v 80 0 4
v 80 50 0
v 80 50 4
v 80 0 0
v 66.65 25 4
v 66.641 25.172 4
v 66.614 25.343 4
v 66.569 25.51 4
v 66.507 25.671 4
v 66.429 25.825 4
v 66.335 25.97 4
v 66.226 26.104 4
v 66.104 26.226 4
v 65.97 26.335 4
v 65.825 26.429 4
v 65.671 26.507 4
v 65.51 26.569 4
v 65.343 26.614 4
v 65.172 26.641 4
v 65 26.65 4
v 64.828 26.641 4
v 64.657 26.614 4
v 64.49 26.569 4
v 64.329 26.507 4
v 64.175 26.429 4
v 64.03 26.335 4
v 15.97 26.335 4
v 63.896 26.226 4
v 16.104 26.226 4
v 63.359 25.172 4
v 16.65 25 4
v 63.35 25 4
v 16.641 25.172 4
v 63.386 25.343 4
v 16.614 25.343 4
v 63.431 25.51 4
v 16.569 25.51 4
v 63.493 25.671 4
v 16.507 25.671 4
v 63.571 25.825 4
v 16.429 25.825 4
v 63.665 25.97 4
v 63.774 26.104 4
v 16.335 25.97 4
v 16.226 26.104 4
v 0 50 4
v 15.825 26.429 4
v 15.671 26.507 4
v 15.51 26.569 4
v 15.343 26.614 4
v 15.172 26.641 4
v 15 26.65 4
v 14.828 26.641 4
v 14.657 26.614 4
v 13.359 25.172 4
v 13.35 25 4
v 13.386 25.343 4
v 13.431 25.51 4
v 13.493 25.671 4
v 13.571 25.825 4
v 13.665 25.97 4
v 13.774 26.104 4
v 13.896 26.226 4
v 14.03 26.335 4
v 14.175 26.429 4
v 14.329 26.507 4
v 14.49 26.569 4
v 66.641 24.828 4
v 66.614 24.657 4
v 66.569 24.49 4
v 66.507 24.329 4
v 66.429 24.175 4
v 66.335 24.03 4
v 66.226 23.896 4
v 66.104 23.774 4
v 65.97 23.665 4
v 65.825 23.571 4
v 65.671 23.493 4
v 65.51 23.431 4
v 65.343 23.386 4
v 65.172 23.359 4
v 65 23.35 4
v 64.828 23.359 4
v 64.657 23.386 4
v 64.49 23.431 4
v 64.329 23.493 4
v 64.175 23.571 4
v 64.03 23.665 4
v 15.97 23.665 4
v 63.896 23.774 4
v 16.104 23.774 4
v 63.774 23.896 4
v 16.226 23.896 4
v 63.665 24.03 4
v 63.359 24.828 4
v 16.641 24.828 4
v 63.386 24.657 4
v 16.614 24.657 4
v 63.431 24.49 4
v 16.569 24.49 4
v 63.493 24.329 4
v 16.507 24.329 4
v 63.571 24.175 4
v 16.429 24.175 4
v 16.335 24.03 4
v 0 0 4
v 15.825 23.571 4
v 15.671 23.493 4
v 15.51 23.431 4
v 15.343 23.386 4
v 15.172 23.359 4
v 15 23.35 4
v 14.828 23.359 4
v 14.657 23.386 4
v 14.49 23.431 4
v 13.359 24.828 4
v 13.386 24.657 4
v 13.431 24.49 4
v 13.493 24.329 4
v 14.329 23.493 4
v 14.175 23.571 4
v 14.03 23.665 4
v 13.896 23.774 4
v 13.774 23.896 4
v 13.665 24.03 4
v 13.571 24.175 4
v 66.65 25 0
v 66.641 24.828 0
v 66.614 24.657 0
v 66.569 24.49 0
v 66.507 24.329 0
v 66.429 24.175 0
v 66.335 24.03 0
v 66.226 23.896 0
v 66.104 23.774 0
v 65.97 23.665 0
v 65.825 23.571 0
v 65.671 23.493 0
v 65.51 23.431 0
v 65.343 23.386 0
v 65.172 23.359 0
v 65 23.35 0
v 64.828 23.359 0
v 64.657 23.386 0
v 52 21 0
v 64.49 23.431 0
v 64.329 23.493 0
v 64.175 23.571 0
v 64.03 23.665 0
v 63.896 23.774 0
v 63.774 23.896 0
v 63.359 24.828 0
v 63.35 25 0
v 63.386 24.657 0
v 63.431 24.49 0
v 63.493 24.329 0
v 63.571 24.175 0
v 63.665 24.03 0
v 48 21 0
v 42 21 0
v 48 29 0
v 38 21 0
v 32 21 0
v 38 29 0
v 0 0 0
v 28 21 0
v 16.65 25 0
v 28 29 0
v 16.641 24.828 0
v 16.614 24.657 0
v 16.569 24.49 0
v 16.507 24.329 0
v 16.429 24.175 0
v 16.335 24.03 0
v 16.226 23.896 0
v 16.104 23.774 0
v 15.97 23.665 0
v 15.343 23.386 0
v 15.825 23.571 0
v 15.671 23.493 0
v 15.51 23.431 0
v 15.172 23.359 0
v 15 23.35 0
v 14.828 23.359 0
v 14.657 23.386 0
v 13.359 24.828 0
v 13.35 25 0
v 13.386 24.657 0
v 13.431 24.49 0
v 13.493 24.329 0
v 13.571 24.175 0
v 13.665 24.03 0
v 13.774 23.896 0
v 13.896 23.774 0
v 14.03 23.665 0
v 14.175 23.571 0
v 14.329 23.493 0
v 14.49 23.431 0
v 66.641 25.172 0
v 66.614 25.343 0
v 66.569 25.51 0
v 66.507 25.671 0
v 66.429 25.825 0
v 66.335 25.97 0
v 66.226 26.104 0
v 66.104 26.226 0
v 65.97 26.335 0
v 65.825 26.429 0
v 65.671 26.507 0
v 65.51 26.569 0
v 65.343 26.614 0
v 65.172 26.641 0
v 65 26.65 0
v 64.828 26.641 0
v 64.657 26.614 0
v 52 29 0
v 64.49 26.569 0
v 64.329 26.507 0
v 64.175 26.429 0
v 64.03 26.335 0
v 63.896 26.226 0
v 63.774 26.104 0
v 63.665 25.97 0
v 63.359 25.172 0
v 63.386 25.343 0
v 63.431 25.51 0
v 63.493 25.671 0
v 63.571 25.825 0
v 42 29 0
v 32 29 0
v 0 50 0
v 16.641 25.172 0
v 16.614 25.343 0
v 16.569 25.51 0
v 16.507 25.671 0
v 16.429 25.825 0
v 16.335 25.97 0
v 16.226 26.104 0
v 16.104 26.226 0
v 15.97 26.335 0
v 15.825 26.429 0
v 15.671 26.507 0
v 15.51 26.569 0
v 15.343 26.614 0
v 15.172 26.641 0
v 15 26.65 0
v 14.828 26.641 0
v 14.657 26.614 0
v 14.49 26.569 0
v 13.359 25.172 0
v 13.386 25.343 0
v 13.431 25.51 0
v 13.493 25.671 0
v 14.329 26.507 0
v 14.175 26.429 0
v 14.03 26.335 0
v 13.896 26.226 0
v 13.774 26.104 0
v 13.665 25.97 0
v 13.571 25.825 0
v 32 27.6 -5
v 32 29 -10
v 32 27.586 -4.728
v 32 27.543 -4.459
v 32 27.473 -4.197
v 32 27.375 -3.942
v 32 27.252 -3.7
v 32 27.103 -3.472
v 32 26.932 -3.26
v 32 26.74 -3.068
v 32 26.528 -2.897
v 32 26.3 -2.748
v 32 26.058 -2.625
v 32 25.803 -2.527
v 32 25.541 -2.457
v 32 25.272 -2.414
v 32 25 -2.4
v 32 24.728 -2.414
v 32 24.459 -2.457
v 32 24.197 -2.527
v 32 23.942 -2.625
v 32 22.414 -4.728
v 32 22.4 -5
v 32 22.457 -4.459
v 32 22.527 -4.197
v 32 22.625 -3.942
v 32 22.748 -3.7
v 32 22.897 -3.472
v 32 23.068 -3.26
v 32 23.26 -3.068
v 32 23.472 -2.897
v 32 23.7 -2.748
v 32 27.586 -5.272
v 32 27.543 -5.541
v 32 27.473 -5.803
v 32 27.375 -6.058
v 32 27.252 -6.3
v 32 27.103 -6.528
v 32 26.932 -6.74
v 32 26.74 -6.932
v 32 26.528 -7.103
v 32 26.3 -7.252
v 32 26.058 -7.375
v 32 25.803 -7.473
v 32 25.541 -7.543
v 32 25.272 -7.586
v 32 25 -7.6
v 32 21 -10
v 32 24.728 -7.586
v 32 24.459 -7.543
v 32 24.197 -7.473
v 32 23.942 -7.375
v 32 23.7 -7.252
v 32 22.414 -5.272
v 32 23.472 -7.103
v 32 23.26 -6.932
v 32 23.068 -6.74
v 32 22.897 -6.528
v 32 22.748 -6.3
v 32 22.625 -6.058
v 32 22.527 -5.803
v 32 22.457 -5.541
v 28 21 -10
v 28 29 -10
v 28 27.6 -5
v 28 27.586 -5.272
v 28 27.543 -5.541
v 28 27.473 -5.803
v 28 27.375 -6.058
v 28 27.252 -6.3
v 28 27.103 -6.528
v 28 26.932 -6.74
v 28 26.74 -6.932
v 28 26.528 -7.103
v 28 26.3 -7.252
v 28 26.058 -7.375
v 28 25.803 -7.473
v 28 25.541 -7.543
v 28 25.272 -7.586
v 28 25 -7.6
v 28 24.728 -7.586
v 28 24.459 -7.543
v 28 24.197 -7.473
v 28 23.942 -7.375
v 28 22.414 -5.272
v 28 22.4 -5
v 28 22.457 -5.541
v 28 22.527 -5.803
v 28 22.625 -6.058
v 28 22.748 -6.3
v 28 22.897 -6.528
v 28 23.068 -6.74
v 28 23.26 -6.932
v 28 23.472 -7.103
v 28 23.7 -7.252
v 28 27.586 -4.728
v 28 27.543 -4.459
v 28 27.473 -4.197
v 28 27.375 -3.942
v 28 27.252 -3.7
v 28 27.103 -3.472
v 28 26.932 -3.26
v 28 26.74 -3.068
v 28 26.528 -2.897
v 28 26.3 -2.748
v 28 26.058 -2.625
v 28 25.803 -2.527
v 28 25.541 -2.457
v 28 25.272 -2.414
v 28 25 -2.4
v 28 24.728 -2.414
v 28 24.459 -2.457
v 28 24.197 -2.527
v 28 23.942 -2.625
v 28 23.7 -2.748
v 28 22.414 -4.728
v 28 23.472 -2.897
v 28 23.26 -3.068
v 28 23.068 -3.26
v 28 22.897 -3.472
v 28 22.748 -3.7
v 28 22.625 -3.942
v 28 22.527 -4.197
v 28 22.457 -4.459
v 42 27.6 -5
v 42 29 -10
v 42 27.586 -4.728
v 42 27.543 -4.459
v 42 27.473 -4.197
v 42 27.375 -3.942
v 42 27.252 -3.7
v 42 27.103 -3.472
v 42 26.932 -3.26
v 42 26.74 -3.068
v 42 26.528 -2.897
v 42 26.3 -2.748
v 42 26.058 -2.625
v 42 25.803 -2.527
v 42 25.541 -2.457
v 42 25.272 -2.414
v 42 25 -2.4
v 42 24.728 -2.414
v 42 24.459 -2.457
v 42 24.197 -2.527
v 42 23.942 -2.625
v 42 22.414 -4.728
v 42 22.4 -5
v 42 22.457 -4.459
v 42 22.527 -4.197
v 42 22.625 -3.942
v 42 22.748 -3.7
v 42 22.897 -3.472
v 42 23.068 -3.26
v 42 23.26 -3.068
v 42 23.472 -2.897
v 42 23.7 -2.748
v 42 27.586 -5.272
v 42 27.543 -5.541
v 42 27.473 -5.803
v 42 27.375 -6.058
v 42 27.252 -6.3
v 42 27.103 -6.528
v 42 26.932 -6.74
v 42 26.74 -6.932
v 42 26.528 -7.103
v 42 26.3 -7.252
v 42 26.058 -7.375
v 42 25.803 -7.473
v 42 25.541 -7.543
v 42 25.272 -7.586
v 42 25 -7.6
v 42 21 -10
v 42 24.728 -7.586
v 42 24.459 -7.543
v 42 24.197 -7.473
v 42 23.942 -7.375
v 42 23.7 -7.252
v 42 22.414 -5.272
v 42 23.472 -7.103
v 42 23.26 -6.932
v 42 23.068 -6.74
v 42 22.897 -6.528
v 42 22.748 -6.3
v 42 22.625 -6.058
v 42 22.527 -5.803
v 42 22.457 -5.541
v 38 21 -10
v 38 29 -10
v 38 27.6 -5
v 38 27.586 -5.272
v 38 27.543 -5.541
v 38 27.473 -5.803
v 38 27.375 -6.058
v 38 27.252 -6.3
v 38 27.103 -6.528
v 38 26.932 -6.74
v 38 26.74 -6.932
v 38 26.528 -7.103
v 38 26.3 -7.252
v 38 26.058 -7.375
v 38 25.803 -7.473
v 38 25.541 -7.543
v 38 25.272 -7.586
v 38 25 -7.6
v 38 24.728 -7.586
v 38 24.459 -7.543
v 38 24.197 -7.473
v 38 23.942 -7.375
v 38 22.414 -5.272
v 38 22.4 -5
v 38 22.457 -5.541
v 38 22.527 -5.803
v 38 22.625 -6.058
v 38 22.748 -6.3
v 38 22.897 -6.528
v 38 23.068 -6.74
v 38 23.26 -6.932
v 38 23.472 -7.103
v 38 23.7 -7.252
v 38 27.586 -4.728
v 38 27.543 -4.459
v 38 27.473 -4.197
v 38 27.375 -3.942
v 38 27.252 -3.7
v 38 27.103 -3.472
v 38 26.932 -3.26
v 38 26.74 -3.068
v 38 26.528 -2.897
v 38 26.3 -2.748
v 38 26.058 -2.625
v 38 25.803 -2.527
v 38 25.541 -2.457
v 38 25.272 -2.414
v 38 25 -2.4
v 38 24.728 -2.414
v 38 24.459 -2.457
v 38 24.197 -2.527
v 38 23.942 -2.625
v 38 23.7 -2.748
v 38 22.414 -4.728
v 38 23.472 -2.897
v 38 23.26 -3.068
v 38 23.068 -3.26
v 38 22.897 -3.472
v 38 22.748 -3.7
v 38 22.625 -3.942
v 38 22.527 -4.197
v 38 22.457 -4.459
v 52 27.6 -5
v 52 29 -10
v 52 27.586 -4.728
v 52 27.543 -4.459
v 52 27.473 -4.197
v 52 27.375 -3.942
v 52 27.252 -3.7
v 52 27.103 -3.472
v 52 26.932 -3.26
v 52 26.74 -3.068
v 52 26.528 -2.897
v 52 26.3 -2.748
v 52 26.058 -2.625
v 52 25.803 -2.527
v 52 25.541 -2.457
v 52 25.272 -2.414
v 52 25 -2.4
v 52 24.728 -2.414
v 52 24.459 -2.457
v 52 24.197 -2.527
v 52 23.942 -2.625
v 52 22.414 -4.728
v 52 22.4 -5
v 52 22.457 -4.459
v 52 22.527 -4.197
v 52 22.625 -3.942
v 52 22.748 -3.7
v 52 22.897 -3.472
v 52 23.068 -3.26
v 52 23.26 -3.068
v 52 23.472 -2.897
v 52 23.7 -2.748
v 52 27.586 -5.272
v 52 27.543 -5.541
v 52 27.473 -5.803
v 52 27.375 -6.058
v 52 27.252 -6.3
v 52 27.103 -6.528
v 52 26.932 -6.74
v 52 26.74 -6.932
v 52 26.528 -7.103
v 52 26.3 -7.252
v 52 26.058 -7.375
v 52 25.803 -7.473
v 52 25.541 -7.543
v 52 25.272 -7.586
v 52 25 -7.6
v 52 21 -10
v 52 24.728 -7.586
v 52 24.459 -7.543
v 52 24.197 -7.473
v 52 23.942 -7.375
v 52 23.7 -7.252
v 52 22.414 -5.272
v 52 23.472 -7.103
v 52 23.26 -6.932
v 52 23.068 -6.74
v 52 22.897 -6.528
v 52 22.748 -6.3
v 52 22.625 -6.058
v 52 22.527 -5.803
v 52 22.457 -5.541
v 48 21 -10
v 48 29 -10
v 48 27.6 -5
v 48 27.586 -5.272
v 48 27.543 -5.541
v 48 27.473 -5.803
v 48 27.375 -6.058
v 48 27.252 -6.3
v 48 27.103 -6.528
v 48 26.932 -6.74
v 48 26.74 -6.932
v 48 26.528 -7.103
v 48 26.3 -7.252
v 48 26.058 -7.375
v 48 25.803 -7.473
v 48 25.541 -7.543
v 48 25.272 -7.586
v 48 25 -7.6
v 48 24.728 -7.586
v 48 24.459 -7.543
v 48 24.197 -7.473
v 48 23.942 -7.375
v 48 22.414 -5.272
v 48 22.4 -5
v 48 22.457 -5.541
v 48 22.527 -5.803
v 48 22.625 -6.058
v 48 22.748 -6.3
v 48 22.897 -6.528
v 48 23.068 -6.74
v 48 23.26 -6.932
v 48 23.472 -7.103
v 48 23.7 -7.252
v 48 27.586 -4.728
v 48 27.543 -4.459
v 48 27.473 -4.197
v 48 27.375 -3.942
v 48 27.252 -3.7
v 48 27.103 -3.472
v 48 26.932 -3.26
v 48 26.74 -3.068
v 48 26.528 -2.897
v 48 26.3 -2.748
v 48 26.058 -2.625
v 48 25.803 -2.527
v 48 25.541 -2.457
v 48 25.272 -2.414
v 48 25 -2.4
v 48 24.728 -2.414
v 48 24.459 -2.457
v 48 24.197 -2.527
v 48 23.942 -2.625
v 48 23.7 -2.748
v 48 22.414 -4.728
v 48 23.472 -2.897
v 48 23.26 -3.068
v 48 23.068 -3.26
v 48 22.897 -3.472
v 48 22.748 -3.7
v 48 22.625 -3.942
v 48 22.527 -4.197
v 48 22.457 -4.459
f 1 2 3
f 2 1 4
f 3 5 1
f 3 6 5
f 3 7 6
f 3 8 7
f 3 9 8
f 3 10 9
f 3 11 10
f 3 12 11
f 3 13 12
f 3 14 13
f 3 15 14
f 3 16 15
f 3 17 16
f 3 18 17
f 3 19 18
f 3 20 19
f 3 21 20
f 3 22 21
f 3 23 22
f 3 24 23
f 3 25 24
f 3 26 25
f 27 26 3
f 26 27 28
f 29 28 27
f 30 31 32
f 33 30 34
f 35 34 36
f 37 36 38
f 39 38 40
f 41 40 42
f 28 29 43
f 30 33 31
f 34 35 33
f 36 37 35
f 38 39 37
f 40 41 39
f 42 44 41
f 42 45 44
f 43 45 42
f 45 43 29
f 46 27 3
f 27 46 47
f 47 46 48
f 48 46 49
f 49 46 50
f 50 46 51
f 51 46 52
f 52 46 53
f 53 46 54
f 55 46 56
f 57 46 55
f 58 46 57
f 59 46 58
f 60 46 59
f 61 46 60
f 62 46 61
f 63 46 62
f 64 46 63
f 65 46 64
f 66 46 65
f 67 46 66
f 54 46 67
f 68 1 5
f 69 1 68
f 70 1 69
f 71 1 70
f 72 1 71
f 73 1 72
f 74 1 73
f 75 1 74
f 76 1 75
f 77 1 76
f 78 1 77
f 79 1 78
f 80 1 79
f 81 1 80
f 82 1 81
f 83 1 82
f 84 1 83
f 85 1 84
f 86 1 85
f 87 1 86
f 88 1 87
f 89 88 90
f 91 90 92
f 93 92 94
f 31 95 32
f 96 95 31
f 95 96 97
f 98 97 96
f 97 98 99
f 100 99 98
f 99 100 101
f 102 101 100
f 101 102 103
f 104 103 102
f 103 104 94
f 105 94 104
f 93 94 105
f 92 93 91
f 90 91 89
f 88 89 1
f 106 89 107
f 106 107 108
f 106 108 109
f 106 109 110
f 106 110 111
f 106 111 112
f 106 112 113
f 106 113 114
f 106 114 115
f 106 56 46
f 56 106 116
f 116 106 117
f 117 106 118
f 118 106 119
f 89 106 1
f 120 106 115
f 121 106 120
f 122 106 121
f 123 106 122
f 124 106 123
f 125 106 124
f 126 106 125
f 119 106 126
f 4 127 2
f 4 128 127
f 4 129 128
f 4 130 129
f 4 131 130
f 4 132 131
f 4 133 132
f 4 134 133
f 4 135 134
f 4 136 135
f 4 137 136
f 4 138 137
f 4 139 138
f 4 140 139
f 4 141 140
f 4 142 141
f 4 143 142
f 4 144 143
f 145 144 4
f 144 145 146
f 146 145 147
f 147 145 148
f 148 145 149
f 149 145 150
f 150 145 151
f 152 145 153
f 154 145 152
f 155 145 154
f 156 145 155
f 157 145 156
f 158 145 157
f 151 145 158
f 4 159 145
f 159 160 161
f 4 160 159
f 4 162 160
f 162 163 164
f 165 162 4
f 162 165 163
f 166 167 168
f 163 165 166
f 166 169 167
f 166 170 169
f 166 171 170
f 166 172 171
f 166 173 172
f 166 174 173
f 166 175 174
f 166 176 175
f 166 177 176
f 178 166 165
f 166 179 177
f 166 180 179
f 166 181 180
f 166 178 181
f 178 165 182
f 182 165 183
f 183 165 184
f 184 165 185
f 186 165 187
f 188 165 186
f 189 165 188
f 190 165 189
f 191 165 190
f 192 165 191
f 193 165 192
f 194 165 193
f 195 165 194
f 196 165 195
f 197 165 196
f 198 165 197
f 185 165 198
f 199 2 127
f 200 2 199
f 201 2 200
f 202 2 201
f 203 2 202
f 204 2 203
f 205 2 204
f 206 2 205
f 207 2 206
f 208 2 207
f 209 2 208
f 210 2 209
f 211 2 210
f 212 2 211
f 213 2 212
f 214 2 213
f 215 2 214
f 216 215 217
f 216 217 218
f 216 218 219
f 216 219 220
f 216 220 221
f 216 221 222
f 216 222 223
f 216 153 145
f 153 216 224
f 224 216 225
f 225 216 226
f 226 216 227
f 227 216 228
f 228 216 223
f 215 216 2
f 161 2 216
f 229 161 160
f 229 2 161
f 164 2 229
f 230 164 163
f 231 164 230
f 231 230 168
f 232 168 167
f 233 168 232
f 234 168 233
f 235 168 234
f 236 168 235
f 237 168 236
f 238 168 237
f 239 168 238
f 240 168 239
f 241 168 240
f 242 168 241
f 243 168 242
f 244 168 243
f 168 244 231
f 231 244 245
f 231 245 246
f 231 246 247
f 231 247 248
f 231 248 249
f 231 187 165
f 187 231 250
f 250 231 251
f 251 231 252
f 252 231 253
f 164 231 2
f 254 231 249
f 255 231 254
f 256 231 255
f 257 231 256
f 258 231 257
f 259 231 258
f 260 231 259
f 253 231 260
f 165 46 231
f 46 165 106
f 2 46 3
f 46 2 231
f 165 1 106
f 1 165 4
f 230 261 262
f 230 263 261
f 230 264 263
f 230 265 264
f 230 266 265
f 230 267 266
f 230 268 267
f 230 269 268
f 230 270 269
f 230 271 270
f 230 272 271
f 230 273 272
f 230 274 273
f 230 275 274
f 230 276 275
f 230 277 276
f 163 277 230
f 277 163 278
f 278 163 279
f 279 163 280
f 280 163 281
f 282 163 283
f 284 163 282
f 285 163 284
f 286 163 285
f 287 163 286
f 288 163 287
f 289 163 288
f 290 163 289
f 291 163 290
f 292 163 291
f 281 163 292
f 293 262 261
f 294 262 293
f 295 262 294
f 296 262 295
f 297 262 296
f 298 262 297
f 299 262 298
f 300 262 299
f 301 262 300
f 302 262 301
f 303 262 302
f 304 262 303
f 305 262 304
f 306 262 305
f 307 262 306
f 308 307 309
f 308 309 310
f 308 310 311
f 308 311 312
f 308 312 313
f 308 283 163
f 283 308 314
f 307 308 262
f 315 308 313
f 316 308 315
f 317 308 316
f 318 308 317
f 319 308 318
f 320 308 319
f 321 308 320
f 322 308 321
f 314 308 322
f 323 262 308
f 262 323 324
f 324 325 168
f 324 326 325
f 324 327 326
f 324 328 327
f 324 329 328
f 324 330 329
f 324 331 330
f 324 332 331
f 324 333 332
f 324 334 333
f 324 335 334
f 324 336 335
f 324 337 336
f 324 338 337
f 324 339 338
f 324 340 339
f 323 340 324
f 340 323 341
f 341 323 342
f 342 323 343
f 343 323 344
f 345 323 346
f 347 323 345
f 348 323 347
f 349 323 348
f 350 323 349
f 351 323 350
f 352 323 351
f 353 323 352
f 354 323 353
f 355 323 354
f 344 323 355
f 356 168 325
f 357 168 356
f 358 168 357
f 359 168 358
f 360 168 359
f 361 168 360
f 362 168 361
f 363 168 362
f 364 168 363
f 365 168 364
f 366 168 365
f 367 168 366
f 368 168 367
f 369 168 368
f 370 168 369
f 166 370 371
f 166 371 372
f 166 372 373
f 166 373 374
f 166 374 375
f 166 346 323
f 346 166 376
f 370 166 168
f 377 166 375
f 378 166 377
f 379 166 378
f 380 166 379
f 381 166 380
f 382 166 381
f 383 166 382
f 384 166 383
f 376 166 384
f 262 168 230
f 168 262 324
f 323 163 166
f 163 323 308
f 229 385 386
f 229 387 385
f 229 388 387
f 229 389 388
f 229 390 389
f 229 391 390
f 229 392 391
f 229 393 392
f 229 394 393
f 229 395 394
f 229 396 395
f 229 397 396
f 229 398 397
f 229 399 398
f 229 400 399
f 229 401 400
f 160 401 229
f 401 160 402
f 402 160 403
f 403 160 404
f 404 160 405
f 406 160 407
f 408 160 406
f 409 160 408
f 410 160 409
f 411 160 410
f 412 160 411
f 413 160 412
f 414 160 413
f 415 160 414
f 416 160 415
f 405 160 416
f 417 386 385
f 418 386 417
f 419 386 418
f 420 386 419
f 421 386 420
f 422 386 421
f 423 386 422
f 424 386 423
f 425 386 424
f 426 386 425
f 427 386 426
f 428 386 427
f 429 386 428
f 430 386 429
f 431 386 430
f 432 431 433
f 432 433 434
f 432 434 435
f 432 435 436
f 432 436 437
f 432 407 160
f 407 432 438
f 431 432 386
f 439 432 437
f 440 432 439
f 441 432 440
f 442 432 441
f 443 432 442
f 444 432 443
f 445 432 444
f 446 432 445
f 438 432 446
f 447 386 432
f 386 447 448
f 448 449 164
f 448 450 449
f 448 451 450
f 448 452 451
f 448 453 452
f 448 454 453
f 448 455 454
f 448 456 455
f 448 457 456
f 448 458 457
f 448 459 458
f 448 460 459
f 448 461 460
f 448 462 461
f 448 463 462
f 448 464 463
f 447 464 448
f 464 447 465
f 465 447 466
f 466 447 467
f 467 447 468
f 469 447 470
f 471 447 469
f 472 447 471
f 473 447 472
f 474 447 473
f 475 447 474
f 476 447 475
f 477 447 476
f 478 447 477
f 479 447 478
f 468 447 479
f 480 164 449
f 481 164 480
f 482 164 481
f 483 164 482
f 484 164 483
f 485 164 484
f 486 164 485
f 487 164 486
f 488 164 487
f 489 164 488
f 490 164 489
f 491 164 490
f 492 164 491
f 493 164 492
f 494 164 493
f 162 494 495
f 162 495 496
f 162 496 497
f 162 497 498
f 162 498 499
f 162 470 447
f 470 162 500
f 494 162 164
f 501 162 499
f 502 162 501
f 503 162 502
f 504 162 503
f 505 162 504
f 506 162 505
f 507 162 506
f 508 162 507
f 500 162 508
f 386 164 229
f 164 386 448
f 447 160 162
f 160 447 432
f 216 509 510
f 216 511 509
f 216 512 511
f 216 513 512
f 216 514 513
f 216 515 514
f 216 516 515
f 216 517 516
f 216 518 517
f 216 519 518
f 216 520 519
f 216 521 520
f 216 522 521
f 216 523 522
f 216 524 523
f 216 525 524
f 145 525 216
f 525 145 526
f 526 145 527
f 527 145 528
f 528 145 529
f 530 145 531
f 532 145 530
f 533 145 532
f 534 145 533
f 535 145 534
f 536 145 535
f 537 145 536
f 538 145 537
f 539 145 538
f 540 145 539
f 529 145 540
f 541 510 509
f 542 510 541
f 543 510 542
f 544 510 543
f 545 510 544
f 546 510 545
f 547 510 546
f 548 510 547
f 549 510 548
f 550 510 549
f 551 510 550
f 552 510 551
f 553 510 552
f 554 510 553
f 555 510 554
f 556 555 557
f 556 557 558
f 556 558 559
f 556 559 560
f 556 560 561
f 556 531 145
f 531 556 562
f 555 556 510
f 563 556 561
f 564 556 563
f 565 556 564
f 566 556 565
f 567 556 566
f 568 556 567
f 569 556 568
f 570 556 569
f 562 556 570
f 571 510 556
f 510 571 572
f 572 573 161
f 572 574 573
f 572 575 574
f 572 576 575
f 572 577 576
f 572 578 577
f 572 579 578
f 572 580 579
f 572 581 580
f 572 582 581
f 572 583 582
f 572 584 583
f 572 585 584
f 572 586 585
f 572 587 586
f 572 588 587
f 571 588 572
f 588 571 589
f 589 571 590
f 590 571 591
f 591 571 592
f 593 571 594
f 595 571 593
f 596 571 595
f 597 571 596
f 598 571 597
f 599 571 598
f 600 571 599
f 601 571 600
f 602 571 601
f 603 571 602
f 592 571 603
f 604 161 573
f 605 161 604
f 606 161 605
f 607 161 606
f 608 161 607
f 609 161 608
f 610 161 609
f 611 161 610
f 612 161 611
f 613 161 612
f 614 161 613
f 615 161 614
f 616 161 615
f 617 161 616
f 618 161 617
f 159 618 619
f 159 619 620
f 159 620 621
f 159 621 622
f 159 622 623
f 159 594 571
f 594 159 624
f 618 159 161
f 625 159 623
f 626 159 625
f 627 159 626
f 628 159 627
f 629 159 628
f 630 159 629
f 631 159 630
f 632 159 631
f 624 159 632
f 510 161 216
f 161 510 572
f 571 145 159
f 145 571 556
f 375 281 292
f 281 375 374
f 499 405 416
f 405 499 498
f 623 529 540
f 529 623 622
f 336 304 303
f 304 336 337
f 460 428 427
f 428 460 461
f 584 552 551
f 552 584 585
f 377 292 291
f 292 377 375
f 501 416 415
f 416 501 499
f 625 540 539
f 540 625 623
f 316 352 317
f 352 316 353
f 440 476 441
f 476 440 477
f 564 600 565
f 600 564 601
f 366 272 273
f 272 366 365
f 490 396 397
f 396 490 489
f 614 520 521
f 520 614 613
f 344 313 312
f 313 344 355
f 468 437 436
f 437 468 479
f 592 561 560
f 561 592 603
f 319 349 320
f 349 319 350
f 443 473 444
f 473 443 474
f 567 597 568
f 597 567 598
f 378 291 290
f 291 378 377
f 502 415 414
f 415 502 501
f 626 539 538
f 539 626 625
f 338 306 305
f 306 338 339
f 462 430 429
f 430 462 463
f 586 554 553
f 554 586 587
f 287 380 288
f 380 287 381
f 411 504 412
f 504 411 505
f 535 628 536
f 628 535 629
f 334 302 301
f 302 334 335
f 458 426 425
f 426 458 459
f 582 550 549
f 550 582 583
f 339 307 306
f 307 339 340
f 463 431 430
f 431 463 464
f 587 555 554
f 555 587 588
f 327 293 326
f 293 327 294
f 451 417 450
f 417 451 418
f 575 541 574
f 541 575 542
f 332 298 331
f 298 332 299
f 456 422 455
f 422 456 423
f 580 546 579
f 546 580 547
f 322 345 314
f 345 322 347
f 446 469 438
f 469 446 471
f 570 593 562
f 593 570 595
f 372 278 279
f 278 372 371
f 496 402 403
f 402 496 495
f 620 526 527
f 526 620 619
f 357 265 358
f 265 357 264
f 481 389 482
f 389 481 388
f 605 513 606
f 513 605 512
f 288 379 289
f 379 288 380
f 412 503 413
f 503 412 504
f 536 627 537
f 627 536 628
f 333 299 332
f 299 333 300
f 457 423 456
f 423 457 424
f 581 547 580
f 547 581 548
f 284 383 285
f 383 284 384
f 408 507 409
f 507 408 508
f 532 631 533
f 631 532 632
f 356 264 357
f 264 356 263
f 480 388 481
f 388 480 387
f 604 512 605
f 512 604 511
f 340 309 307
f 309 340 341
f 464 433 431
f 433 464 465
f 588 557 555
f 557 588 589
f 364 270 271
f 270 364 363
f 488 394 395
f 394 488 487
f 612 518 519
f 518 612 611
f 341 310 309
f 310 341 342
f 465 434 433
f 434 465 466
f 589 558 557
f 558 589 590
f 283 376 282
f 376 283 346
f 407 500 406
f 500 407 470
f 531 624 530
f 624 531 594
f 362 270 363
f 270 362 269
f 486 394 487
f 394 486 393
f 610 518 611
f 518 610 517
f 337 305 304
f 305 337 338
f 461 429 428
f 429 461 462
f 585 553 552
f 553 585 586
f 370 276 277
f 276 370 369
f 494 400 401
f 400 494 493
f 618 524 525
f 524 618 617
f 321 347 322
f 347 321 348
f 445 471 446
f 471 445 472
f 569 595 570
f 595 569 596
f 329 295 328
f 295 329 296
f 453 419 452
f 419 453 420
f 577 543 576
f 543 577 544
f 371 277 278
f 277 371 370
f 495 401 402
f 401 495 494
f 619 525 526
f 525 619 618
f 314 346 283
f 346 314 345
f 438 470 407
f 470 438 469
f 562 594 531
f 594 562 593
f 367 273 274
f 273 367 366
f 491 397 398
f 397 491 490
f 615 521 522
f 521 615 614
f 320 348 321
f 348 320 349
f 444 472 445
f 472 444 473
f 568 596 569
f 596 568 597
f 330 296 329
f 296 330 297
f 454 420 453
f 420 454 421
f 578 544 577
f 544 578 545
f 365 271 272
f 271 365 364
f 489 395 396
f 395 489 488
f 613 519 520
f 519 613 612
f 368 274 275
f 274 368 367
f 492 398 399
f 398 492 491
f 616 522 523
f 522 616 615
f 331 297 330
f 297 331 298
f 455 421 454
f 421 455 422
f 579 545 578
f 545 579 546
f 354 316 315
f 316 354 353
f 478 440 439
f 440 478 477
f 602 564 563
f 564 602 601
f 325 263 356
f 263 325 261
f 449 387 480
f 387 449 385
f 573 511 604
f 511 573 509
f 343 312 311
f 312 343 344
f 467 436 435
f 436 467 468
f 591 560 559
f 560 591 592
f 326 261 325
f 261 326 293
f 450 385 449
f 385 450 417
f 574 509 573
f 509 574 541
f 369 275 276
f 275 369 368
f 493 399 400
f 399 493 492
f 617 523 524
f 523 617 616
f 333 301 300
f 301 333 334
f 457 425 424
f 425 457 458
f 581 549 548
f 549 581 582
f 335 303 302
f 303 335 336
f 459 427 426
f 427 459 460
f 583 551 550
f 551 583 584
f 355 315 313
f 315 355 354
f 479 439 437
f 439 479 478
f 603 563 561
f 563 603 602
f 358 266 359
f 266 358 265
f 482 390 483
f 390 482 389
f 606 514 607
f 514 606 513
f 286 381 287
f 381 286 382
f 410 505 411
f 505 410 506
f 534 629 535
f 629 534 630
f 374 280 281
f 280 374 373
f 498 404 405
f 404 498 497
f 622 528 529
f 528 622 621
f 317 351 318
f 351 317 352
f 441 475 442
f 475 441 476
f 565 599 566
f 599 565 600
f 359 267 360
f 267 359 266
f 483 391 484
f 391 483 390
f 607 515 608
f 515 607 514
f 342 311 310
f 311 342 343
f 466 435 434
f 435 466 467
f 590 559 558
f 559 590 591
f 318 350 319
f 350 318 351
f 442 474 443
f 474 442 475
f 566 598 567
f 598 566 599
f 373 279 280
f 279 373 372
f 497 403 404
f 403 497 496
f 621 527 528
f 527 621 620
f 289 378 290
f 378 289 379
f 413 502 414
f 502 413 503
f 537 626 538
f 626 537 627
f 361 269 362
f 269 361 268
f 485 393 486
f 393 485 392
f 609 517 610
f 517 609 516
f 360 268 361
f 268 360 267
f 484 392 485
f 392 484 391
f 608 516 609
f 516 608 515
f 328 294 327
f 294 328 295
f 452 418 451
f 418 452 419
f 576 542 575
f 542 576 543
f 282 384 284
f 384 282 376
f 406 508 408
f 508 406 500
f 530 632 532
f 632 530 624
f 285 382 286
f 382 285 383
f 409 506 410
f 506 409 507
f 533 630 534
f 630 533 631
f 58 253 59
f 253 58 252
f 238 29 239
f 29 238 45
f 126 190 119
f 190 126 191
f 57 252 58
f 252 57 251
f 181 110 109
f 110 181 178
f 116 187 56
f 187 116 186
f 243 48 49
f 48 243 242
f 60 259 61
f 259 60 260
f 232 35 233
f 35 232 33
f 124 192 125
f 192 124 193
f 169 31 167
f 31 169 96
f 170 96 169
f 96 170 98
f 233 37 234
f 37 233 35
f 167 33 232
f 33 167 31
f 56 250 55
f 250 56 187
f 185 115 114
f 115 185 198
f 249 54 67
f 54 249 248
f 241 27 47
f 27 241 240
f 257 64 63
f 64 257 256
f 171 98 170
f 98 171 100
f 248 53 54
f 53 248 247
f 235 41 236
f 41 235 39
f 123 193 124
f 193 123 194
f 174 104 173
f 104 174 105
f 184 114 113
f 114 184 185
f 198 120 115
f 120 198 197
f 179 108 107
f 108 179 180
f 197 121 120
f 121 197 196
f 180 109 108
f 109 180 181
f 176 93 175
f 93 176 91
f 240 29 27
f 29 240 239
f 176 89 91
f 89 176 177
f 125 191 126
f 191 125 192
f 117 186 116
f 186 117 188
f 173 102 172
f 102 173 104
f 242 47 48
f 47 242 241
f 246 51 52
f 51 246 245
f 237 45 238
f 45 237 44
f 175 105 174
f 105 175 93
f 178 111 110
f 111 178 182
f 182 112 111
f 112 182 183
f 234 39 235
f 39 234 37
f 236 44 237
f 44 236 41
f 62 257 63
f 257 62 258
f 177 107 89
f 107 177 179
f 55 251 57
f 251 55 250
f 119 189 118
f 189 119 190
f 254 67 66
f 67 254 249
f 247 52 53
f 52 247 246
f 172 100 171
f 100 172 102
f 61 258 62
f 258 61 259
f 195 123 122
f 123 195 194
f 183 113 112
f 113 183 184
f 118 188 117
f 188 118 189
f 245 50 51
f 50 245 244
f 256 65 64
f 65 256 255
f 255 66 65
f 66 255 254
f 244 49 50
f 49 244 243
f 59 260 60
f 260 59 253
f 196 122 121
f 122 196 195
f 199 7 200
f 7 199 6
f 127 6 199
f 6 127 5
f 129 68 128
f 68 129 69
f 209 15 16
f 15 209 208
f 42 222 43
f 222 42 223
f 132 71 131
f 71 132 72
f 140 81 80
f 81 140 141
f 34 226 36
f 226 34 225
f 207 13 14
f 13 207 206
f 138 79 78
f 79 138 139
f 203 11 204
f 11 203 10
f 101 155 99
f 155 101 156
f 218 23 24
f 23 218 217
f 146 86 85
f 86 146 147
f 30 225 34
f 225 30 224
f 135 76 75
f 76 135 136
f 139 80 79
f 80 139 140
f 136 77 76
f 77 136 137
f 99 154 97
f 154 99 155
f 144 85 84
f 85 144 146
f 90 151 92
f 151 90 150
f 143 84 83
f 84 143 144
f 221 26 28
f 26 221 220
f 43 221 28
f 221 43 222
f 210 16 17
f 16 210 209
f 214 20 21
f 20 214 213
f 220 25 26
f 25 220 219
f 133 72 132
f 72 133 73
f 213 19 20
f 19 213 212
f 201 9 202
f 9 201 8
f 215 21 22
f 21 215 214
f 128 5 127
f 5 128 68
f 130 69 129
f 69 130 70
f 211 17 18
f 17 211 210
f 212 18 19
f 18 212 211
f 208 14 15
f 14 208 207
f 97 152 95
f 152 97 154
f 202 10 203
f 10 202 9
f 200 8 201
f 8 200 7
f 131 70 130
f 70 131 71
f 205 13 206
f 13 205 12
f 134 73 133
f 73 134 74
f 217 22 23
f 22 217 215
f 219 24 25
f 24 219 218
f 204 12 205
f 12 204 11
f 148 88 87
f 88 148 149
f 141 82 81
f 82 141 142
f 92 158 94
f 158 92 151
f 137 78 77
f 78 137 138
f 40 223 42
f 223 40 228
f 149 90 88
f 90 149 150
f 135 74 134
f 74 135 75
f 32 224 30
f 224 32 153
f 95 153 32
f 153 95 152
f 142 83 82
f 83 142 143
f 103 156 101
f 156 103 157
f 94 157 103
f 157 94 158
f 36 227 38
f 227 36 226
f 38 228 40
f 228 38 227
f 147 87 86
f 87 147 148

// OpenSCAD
// =============================================================================
// OpenMotorBridge - Satellite Pod: Rear GoPro & Luggage Rack Mount (Pod 3)
// =============================================================================
// File: hardware/cad/scad/02_pod_base/pod_mount_gopro_rack.scad
// Description: Standard 3-prong GoPro compatible mounting adapter plate for
//              tail, topcase, or tubular luggage rack mounting of Pod 3.
// =============================================================================

include <../00_common/parameters.scad>;

module pod_mount_gopro_rack(plate_l=80.0, plate_w=50.0, plate_t=4.0) {
    difference() {
        union() {
            // 1. Adapter Base Plate
            cube(size=[plate_l, plate_w, plate_t], center=false);

            // 2. 3x Standard GoPro Cleats (Underneath center: 3x 3.0mm fingers, 3.0mm gaps)
            translate([28.0, plate_w/2.0 - 4.0, -10.0])
                cube(size=[4.0, 8.0, 10.0], center=false);
            translate([38.0, plate_w/2.0 - 4.0, -10.0])
                cube(size=[4.0, 8.0, 10.0], center=false);
            translate([48.0, plate_w/2.0 - 4.0, -10.0])
                cube(size=[4.0, 8.0, 10.0], center=false);
        }

        // 3. GoPro M5 Through-Bolt Hole (across the 3 cleats)
        translate([20.0, plate_w/2.0, -5.0])
            rotate([0, 90, 0])
                cylinder(r=2.6, h=40.0, center=false); // Ø 5.2 mm for M5 thumbscrew

        // 4. 2x M3 Screws to Pod Housing Bottom
        translate([15.0, plate_w/2.0, -1.0])
            cylinder(r=M3_SCREW_HOLE_R, h=plate_t + 2.0, center=false);
        translate([65.0, plate_w/2.0, -1.0])
            cylinder(r=M3_SCREW_HOLE_R, h=plate_t + 2.0, center=false);
    }
}

// Render complete GoPro mount
pod_mount_gopro_rack();
